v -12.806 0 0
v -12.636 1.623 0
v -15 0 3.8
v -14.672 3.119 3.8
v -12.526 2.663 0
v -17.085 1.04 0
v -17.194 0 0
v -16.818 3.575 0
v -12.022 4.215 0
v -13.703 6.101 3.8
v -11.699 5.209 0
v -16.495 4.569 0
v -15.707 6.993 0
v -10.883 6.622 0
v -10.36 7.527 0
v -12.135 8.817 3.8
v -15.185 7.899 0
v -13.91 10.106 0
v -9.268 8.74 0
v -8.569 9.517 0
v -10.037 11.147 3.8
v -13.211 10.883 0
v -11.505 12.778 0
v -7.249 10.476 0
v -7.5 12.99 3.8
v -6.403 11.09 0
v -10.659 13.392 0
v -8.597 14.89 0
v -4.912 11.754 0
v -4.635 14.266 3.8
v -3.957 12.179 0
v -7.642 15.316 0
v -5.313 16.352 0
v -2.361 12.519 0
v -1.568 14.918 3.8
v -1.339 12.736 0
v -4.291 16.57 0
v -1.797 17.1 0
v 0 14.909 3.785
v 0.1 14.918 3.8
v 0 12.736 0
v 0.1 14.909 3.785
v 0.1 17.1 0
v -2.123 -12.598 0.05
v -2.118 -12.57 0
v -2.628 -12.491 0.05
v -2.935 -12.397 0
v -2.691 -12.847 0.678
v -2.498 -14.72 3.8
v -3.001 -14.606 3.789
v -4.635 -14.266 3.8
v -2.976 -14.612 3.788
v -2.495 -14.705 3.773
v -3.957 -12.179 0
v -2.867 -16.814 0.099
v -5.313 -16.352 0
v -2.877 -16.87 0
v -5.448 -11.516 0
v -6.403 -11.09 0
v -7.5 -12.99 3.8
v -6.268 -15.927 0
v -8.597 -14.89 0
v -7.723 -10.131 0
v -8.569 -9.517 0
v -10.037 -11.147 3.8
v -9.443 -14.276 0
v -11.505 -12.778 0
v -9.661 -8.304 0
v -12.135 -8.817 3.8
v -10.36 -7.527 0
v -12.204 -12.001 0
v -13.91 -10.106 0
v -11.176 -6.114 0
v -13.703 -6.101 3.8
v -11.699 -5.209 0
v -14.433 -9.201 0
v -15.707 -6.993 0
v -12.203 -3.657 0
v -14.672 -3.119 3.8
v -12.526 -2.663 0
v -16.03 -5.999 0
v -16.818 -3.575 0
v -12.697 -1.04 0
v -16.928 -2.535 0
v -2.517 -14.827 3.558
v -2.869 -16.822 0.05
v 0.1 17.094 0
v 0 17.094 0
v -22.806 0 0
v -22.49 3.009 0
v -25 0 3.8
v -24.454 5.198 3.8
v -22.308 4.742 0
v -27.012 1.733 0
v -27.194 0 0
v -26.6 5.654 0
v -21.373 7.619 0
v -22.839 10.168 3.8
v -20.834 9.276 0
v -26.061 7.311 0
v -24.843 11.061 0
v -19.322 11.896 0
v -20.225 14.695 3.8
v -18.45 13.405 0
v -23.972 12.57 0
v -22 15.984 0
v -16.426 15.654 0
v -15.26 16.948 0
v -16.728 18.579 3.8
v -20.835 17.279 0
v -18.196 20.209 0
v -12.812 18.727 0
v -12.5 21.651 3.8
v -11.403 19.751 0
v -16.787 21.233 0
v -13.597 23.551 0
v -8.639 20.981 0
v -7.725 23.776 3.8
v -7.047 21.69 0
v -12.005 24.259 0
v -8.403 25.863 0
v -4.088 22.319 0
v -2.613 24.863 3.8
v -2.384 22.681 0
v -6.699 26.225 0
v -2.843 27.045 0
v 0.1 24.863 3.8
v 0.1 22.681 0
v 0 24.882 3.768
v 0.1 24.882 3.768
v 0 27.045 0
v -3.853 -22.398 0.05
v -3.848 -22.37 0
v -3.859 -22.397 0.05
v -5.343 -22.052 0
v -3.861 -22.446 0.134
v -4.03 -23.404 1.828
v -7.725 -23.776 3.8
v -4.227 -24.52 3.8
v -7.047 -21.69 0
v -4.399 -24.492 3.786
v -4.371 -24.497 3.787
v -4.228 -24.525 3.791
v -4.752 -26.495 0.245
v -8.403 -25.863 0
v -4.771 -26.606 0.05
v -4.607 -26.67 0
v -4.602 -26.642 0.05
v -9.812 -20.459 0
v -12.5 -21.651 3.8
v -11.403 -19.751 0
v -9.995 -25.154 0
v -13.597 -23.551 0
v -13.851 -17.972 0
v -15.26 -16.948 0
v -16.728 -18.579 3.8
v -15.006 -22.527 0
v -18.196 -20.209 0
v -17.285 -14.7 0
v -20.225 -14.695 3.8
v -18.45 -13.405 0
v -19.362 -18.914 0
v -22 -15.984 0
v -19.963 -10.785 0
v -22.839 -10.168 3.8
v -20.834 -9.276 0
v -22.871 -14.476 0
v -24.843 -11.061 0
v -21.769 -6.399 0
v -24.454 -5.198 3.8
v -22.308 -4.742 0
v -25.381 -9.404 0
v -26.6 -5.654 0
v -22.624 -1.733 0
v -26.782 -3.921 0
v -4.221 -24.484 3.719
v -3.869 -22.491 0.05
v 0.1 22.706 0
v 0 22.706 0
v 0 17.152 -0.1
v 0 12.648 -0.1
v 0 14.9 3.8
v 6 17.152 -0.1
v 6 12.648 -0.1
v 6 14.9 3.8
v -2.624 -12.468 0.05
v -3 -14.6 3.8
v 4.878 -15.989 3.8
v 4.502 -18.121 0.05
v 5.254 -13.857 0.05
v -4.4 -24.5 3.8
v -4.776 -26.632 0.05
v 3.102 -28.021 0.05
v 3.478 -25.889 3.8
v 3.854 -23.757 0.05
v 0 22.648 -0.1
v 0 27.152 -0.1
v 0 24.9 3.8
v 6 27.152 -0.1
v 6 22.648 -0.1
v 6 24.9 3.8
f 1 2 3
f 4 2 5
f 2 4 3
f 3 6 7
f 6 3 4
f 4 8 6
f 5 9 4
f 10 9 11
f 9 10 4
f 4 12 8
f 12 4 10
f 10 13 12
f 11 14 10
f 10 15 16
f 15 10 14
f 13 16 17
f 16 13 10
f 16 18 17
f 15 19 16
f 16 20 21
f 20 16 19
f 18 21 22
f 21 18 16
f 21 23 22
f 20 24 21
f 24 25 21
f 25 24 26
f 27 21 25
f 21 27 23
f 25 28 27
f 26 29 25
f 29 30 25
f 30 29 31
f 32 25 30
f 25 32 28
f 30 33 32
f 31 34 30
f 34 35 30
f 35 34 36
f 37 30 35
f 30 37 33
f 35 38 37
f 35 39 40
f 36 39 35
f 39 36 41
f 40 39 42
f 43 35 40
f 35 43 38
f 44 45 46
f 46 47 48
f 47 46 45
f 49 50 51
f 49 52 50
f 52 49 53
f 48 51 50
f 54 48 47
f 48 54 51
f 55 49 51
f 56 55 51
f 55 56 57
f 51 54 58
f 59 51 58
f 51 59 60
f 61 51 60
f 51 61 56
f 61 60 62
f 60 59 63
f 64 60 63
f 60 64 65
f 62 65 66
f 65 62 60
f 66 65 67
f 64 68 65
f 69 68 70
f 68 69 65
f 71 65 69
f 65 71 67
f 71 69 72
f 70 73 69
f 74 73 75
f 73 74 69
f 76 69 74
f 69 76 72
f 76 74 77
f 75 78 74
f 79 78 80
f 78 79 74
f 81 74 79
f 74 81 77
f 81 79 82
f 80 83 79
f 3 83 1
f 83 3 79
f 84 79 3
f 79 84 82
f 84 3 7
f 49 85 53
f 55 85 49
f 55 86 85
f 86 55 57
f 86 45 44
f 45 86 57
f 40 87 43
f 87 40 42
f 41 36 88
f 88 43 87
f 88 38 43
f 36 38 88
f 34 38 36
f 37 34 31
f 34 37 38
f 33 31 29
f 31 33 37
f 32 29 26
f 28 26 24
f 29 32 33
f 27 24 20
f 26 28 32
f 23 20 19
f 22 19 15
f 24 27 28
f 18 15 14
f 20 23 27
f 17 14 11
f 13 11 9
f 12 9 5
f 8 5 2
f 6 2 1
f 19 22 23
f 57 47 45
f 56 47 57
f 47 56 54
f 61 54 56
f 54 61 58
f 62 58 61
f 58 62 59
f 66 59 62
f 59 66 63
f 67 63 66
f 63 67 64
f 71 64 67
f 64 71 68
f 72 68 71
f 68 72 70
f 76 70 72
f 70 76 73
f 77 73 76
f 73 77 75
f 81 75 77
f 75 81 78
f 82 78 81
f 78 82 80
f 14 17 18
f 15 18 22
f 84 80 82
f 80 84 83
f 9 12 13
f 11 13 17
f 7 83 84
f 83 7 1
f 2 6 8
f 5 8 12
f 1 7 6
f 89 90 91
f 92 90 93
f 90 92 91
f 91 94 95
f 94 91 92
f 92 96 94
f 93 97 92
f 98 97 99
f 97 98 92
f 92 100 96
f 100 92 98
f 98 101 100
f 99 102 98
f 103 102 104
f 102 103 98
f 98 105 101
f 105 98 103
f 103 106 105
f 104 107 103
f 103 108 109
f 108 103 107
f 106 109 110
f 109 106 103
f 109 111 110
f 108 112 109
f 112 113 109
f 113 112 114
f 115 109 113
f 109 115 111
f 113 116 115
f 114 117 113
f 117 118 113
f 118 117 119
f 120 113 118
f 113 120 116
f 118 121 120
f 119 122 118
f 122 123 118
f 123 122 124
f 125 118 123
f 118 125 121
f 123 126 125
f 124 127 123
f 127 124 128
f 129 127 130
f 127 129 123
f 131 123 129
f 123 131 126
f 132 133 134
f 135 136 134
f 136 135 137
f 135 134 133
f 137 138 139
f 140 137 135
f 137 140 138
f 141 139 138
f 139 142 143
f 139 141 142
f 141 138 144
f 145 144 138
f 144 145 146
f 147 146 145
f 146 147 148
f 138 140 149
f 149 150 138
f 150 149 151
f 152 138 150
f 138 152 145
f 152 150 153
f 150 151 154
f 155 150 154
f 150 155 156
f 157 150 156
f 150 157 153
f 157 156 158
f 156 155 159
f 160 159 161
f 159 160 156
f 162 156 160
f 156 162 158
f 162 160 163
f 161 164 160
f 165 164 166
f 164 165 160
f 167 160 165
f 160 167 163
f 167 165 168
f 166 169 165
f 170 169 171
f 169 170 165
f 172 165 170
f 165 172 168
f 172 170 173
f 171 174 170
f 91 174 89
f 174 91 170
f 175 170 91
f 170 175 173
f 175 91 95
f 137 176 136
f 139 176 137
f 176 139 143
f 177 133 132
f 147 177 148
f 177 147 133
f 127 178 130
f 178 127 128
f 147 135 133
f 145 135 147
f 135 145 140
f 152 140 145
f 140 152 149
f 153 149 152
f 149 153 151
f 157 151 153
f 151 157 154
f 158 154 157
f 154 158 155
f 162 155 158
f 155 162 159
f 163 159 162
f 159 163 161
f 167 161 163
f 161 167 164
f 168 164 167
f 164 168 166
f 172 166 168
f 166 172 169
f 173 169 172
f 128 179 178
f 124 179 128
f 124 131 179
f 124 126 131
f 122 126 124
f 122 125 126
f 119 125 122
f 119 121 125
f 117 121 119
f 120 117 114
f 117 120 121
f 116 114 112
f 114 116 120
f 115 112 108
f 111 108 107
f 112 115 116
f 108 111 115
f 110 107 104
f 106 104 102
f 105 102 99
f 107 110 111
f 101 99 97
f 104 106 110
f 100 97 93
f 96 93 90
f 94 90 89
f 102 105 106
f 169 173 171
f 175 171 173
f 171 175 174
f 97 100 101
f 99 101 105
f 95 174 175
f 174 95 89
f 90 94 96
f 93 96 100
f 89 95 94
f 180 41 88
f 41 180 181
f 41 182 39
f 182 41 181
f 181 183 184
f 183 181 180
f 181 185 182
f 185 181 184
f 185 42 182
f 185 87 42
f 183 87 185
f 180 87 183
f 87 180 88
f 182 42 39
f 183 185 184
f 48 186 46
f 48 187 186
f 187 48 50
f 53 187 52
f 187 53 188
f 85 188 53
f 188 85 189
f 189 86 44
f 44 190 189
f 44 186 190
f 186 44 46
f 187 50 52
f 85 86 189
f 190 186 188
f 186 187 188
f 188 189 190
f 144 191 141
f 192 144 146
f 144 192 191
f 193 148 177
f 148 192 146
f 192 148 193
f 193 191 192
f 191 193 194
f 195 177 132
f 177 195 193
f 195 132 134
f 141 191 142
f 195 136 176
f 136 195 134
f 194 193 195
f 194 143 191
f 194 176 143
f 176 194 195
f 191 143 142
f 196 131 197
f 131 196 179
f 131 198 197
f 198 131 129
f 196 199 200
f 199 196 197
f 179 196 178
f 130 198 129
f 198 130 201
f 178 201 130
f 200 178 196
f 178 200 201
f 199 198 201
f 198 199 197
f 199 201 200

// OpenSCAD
// file: triangle_union.scad
module triangulo_base(height, radio, wall) {
  //const
  triangle_height = height;
  triangle_radio = radio;
  triangle_wall = wall;

  /*triangle_height = 25;
  triangle_radio = 5.4/2;
  triangle_wall = 5.4/2;*/
	//Rotate triangle To lean on the bed of the printer
  rotate([0, 90, 0]) {
    rotate(-30){
      triangle_tube(triangle_height, triangle_radio, triangle_wall);
    }
  }
}

//triangle_tube(20, 5, 5);
module triangle_tube(height,radius,wall)
{
   tubify(radius,wall) triangle_prism(height,radius);
}

//Tubifies any regular prism
module tubify(radius,wall)
{
  difference()
  {
    children(0);
    translate([0, 0, -0.1]) scale([(radius-wall)/radius, (radius-wall)/radius, 2]) children(0);
  }
}

module triangle_prism(height,radius)
{
  linear_extrude(height=height) triangle(radius);
}

module triangle(radius)
{
  o=radius/2;		//equivalent to radius*sin(30)
  a=radius*sqrt(3)/2;	//equivalent to radius*cos(30)
  polygon(points=[[-a,-o],[0,radius],[a,-o]],paths=[[0,1,2]]);
}
// main file
include <triangle_union.scad>
//triangulo_base(10, 5.4/2, 5.4/2);


trinagle_positon_x = 5;
triangle_radio = 3.8;
triangle_step_distance = 10;
triangle_angle = 170; //TODO max 170 to fixed

triagle_generator(trinagle_positon_x, triangle_step_distance, triangle_radio, triangle_angle);

module triagle_generator(positon_x, step_distance, radio, angle){
  for (i = [1:2]) {
    position = [positon_x+i*triangle_step_distance,0,0];
    echo(str("Variable = ", position));

    translate([0, positon_x-0.1+i*step_distance, 1.2]) {
      rotate([0, 90, 0]) {
        rotate([0, 0, -30]){
          linear_extrude(height=6){
            triangle(2.6);
          }
        }
      }
    }

    //TODO parametrice extension
    translate([-3, -14.6, 1.3]) {
      rotate([10, 90, 0]) {
        rotate([0, 0, -30]){
          linear_extrude(height=8){
            triangle(2.5);
          }
        }
      }
    }

    //TODO parametrice extension
    translate([-4.4, -24.5, 1.3]) {
      rotate([10, 90, 0]) {
        rotate([0, 0, -30]){
          linear_extrude(height=8){
            triangle(2.5);
          }
        }
      }
    }

    intersection() {
      rotate_extrude() {
        translate(position) {
          triangle(radio);
        }
      }
      hull() {
        rotate(0) cube([0.1,700,700]);
        rotate(angle) cube([0.1,700,700]);
      }
    }
  }
}

module triangle(radius) {
  o=radius/2;
  a=radius*sqrt(3)/2;
  polygon(points=[[-a,-o],[0,radius],[a,-o]],paths=[[0,1,2]]);
}

function position_poligonos(radius) =
let(a=radius*sqrt(3)/2)
let(o=1000)
[[-a,-o],[0,radius],[a,-o]];
